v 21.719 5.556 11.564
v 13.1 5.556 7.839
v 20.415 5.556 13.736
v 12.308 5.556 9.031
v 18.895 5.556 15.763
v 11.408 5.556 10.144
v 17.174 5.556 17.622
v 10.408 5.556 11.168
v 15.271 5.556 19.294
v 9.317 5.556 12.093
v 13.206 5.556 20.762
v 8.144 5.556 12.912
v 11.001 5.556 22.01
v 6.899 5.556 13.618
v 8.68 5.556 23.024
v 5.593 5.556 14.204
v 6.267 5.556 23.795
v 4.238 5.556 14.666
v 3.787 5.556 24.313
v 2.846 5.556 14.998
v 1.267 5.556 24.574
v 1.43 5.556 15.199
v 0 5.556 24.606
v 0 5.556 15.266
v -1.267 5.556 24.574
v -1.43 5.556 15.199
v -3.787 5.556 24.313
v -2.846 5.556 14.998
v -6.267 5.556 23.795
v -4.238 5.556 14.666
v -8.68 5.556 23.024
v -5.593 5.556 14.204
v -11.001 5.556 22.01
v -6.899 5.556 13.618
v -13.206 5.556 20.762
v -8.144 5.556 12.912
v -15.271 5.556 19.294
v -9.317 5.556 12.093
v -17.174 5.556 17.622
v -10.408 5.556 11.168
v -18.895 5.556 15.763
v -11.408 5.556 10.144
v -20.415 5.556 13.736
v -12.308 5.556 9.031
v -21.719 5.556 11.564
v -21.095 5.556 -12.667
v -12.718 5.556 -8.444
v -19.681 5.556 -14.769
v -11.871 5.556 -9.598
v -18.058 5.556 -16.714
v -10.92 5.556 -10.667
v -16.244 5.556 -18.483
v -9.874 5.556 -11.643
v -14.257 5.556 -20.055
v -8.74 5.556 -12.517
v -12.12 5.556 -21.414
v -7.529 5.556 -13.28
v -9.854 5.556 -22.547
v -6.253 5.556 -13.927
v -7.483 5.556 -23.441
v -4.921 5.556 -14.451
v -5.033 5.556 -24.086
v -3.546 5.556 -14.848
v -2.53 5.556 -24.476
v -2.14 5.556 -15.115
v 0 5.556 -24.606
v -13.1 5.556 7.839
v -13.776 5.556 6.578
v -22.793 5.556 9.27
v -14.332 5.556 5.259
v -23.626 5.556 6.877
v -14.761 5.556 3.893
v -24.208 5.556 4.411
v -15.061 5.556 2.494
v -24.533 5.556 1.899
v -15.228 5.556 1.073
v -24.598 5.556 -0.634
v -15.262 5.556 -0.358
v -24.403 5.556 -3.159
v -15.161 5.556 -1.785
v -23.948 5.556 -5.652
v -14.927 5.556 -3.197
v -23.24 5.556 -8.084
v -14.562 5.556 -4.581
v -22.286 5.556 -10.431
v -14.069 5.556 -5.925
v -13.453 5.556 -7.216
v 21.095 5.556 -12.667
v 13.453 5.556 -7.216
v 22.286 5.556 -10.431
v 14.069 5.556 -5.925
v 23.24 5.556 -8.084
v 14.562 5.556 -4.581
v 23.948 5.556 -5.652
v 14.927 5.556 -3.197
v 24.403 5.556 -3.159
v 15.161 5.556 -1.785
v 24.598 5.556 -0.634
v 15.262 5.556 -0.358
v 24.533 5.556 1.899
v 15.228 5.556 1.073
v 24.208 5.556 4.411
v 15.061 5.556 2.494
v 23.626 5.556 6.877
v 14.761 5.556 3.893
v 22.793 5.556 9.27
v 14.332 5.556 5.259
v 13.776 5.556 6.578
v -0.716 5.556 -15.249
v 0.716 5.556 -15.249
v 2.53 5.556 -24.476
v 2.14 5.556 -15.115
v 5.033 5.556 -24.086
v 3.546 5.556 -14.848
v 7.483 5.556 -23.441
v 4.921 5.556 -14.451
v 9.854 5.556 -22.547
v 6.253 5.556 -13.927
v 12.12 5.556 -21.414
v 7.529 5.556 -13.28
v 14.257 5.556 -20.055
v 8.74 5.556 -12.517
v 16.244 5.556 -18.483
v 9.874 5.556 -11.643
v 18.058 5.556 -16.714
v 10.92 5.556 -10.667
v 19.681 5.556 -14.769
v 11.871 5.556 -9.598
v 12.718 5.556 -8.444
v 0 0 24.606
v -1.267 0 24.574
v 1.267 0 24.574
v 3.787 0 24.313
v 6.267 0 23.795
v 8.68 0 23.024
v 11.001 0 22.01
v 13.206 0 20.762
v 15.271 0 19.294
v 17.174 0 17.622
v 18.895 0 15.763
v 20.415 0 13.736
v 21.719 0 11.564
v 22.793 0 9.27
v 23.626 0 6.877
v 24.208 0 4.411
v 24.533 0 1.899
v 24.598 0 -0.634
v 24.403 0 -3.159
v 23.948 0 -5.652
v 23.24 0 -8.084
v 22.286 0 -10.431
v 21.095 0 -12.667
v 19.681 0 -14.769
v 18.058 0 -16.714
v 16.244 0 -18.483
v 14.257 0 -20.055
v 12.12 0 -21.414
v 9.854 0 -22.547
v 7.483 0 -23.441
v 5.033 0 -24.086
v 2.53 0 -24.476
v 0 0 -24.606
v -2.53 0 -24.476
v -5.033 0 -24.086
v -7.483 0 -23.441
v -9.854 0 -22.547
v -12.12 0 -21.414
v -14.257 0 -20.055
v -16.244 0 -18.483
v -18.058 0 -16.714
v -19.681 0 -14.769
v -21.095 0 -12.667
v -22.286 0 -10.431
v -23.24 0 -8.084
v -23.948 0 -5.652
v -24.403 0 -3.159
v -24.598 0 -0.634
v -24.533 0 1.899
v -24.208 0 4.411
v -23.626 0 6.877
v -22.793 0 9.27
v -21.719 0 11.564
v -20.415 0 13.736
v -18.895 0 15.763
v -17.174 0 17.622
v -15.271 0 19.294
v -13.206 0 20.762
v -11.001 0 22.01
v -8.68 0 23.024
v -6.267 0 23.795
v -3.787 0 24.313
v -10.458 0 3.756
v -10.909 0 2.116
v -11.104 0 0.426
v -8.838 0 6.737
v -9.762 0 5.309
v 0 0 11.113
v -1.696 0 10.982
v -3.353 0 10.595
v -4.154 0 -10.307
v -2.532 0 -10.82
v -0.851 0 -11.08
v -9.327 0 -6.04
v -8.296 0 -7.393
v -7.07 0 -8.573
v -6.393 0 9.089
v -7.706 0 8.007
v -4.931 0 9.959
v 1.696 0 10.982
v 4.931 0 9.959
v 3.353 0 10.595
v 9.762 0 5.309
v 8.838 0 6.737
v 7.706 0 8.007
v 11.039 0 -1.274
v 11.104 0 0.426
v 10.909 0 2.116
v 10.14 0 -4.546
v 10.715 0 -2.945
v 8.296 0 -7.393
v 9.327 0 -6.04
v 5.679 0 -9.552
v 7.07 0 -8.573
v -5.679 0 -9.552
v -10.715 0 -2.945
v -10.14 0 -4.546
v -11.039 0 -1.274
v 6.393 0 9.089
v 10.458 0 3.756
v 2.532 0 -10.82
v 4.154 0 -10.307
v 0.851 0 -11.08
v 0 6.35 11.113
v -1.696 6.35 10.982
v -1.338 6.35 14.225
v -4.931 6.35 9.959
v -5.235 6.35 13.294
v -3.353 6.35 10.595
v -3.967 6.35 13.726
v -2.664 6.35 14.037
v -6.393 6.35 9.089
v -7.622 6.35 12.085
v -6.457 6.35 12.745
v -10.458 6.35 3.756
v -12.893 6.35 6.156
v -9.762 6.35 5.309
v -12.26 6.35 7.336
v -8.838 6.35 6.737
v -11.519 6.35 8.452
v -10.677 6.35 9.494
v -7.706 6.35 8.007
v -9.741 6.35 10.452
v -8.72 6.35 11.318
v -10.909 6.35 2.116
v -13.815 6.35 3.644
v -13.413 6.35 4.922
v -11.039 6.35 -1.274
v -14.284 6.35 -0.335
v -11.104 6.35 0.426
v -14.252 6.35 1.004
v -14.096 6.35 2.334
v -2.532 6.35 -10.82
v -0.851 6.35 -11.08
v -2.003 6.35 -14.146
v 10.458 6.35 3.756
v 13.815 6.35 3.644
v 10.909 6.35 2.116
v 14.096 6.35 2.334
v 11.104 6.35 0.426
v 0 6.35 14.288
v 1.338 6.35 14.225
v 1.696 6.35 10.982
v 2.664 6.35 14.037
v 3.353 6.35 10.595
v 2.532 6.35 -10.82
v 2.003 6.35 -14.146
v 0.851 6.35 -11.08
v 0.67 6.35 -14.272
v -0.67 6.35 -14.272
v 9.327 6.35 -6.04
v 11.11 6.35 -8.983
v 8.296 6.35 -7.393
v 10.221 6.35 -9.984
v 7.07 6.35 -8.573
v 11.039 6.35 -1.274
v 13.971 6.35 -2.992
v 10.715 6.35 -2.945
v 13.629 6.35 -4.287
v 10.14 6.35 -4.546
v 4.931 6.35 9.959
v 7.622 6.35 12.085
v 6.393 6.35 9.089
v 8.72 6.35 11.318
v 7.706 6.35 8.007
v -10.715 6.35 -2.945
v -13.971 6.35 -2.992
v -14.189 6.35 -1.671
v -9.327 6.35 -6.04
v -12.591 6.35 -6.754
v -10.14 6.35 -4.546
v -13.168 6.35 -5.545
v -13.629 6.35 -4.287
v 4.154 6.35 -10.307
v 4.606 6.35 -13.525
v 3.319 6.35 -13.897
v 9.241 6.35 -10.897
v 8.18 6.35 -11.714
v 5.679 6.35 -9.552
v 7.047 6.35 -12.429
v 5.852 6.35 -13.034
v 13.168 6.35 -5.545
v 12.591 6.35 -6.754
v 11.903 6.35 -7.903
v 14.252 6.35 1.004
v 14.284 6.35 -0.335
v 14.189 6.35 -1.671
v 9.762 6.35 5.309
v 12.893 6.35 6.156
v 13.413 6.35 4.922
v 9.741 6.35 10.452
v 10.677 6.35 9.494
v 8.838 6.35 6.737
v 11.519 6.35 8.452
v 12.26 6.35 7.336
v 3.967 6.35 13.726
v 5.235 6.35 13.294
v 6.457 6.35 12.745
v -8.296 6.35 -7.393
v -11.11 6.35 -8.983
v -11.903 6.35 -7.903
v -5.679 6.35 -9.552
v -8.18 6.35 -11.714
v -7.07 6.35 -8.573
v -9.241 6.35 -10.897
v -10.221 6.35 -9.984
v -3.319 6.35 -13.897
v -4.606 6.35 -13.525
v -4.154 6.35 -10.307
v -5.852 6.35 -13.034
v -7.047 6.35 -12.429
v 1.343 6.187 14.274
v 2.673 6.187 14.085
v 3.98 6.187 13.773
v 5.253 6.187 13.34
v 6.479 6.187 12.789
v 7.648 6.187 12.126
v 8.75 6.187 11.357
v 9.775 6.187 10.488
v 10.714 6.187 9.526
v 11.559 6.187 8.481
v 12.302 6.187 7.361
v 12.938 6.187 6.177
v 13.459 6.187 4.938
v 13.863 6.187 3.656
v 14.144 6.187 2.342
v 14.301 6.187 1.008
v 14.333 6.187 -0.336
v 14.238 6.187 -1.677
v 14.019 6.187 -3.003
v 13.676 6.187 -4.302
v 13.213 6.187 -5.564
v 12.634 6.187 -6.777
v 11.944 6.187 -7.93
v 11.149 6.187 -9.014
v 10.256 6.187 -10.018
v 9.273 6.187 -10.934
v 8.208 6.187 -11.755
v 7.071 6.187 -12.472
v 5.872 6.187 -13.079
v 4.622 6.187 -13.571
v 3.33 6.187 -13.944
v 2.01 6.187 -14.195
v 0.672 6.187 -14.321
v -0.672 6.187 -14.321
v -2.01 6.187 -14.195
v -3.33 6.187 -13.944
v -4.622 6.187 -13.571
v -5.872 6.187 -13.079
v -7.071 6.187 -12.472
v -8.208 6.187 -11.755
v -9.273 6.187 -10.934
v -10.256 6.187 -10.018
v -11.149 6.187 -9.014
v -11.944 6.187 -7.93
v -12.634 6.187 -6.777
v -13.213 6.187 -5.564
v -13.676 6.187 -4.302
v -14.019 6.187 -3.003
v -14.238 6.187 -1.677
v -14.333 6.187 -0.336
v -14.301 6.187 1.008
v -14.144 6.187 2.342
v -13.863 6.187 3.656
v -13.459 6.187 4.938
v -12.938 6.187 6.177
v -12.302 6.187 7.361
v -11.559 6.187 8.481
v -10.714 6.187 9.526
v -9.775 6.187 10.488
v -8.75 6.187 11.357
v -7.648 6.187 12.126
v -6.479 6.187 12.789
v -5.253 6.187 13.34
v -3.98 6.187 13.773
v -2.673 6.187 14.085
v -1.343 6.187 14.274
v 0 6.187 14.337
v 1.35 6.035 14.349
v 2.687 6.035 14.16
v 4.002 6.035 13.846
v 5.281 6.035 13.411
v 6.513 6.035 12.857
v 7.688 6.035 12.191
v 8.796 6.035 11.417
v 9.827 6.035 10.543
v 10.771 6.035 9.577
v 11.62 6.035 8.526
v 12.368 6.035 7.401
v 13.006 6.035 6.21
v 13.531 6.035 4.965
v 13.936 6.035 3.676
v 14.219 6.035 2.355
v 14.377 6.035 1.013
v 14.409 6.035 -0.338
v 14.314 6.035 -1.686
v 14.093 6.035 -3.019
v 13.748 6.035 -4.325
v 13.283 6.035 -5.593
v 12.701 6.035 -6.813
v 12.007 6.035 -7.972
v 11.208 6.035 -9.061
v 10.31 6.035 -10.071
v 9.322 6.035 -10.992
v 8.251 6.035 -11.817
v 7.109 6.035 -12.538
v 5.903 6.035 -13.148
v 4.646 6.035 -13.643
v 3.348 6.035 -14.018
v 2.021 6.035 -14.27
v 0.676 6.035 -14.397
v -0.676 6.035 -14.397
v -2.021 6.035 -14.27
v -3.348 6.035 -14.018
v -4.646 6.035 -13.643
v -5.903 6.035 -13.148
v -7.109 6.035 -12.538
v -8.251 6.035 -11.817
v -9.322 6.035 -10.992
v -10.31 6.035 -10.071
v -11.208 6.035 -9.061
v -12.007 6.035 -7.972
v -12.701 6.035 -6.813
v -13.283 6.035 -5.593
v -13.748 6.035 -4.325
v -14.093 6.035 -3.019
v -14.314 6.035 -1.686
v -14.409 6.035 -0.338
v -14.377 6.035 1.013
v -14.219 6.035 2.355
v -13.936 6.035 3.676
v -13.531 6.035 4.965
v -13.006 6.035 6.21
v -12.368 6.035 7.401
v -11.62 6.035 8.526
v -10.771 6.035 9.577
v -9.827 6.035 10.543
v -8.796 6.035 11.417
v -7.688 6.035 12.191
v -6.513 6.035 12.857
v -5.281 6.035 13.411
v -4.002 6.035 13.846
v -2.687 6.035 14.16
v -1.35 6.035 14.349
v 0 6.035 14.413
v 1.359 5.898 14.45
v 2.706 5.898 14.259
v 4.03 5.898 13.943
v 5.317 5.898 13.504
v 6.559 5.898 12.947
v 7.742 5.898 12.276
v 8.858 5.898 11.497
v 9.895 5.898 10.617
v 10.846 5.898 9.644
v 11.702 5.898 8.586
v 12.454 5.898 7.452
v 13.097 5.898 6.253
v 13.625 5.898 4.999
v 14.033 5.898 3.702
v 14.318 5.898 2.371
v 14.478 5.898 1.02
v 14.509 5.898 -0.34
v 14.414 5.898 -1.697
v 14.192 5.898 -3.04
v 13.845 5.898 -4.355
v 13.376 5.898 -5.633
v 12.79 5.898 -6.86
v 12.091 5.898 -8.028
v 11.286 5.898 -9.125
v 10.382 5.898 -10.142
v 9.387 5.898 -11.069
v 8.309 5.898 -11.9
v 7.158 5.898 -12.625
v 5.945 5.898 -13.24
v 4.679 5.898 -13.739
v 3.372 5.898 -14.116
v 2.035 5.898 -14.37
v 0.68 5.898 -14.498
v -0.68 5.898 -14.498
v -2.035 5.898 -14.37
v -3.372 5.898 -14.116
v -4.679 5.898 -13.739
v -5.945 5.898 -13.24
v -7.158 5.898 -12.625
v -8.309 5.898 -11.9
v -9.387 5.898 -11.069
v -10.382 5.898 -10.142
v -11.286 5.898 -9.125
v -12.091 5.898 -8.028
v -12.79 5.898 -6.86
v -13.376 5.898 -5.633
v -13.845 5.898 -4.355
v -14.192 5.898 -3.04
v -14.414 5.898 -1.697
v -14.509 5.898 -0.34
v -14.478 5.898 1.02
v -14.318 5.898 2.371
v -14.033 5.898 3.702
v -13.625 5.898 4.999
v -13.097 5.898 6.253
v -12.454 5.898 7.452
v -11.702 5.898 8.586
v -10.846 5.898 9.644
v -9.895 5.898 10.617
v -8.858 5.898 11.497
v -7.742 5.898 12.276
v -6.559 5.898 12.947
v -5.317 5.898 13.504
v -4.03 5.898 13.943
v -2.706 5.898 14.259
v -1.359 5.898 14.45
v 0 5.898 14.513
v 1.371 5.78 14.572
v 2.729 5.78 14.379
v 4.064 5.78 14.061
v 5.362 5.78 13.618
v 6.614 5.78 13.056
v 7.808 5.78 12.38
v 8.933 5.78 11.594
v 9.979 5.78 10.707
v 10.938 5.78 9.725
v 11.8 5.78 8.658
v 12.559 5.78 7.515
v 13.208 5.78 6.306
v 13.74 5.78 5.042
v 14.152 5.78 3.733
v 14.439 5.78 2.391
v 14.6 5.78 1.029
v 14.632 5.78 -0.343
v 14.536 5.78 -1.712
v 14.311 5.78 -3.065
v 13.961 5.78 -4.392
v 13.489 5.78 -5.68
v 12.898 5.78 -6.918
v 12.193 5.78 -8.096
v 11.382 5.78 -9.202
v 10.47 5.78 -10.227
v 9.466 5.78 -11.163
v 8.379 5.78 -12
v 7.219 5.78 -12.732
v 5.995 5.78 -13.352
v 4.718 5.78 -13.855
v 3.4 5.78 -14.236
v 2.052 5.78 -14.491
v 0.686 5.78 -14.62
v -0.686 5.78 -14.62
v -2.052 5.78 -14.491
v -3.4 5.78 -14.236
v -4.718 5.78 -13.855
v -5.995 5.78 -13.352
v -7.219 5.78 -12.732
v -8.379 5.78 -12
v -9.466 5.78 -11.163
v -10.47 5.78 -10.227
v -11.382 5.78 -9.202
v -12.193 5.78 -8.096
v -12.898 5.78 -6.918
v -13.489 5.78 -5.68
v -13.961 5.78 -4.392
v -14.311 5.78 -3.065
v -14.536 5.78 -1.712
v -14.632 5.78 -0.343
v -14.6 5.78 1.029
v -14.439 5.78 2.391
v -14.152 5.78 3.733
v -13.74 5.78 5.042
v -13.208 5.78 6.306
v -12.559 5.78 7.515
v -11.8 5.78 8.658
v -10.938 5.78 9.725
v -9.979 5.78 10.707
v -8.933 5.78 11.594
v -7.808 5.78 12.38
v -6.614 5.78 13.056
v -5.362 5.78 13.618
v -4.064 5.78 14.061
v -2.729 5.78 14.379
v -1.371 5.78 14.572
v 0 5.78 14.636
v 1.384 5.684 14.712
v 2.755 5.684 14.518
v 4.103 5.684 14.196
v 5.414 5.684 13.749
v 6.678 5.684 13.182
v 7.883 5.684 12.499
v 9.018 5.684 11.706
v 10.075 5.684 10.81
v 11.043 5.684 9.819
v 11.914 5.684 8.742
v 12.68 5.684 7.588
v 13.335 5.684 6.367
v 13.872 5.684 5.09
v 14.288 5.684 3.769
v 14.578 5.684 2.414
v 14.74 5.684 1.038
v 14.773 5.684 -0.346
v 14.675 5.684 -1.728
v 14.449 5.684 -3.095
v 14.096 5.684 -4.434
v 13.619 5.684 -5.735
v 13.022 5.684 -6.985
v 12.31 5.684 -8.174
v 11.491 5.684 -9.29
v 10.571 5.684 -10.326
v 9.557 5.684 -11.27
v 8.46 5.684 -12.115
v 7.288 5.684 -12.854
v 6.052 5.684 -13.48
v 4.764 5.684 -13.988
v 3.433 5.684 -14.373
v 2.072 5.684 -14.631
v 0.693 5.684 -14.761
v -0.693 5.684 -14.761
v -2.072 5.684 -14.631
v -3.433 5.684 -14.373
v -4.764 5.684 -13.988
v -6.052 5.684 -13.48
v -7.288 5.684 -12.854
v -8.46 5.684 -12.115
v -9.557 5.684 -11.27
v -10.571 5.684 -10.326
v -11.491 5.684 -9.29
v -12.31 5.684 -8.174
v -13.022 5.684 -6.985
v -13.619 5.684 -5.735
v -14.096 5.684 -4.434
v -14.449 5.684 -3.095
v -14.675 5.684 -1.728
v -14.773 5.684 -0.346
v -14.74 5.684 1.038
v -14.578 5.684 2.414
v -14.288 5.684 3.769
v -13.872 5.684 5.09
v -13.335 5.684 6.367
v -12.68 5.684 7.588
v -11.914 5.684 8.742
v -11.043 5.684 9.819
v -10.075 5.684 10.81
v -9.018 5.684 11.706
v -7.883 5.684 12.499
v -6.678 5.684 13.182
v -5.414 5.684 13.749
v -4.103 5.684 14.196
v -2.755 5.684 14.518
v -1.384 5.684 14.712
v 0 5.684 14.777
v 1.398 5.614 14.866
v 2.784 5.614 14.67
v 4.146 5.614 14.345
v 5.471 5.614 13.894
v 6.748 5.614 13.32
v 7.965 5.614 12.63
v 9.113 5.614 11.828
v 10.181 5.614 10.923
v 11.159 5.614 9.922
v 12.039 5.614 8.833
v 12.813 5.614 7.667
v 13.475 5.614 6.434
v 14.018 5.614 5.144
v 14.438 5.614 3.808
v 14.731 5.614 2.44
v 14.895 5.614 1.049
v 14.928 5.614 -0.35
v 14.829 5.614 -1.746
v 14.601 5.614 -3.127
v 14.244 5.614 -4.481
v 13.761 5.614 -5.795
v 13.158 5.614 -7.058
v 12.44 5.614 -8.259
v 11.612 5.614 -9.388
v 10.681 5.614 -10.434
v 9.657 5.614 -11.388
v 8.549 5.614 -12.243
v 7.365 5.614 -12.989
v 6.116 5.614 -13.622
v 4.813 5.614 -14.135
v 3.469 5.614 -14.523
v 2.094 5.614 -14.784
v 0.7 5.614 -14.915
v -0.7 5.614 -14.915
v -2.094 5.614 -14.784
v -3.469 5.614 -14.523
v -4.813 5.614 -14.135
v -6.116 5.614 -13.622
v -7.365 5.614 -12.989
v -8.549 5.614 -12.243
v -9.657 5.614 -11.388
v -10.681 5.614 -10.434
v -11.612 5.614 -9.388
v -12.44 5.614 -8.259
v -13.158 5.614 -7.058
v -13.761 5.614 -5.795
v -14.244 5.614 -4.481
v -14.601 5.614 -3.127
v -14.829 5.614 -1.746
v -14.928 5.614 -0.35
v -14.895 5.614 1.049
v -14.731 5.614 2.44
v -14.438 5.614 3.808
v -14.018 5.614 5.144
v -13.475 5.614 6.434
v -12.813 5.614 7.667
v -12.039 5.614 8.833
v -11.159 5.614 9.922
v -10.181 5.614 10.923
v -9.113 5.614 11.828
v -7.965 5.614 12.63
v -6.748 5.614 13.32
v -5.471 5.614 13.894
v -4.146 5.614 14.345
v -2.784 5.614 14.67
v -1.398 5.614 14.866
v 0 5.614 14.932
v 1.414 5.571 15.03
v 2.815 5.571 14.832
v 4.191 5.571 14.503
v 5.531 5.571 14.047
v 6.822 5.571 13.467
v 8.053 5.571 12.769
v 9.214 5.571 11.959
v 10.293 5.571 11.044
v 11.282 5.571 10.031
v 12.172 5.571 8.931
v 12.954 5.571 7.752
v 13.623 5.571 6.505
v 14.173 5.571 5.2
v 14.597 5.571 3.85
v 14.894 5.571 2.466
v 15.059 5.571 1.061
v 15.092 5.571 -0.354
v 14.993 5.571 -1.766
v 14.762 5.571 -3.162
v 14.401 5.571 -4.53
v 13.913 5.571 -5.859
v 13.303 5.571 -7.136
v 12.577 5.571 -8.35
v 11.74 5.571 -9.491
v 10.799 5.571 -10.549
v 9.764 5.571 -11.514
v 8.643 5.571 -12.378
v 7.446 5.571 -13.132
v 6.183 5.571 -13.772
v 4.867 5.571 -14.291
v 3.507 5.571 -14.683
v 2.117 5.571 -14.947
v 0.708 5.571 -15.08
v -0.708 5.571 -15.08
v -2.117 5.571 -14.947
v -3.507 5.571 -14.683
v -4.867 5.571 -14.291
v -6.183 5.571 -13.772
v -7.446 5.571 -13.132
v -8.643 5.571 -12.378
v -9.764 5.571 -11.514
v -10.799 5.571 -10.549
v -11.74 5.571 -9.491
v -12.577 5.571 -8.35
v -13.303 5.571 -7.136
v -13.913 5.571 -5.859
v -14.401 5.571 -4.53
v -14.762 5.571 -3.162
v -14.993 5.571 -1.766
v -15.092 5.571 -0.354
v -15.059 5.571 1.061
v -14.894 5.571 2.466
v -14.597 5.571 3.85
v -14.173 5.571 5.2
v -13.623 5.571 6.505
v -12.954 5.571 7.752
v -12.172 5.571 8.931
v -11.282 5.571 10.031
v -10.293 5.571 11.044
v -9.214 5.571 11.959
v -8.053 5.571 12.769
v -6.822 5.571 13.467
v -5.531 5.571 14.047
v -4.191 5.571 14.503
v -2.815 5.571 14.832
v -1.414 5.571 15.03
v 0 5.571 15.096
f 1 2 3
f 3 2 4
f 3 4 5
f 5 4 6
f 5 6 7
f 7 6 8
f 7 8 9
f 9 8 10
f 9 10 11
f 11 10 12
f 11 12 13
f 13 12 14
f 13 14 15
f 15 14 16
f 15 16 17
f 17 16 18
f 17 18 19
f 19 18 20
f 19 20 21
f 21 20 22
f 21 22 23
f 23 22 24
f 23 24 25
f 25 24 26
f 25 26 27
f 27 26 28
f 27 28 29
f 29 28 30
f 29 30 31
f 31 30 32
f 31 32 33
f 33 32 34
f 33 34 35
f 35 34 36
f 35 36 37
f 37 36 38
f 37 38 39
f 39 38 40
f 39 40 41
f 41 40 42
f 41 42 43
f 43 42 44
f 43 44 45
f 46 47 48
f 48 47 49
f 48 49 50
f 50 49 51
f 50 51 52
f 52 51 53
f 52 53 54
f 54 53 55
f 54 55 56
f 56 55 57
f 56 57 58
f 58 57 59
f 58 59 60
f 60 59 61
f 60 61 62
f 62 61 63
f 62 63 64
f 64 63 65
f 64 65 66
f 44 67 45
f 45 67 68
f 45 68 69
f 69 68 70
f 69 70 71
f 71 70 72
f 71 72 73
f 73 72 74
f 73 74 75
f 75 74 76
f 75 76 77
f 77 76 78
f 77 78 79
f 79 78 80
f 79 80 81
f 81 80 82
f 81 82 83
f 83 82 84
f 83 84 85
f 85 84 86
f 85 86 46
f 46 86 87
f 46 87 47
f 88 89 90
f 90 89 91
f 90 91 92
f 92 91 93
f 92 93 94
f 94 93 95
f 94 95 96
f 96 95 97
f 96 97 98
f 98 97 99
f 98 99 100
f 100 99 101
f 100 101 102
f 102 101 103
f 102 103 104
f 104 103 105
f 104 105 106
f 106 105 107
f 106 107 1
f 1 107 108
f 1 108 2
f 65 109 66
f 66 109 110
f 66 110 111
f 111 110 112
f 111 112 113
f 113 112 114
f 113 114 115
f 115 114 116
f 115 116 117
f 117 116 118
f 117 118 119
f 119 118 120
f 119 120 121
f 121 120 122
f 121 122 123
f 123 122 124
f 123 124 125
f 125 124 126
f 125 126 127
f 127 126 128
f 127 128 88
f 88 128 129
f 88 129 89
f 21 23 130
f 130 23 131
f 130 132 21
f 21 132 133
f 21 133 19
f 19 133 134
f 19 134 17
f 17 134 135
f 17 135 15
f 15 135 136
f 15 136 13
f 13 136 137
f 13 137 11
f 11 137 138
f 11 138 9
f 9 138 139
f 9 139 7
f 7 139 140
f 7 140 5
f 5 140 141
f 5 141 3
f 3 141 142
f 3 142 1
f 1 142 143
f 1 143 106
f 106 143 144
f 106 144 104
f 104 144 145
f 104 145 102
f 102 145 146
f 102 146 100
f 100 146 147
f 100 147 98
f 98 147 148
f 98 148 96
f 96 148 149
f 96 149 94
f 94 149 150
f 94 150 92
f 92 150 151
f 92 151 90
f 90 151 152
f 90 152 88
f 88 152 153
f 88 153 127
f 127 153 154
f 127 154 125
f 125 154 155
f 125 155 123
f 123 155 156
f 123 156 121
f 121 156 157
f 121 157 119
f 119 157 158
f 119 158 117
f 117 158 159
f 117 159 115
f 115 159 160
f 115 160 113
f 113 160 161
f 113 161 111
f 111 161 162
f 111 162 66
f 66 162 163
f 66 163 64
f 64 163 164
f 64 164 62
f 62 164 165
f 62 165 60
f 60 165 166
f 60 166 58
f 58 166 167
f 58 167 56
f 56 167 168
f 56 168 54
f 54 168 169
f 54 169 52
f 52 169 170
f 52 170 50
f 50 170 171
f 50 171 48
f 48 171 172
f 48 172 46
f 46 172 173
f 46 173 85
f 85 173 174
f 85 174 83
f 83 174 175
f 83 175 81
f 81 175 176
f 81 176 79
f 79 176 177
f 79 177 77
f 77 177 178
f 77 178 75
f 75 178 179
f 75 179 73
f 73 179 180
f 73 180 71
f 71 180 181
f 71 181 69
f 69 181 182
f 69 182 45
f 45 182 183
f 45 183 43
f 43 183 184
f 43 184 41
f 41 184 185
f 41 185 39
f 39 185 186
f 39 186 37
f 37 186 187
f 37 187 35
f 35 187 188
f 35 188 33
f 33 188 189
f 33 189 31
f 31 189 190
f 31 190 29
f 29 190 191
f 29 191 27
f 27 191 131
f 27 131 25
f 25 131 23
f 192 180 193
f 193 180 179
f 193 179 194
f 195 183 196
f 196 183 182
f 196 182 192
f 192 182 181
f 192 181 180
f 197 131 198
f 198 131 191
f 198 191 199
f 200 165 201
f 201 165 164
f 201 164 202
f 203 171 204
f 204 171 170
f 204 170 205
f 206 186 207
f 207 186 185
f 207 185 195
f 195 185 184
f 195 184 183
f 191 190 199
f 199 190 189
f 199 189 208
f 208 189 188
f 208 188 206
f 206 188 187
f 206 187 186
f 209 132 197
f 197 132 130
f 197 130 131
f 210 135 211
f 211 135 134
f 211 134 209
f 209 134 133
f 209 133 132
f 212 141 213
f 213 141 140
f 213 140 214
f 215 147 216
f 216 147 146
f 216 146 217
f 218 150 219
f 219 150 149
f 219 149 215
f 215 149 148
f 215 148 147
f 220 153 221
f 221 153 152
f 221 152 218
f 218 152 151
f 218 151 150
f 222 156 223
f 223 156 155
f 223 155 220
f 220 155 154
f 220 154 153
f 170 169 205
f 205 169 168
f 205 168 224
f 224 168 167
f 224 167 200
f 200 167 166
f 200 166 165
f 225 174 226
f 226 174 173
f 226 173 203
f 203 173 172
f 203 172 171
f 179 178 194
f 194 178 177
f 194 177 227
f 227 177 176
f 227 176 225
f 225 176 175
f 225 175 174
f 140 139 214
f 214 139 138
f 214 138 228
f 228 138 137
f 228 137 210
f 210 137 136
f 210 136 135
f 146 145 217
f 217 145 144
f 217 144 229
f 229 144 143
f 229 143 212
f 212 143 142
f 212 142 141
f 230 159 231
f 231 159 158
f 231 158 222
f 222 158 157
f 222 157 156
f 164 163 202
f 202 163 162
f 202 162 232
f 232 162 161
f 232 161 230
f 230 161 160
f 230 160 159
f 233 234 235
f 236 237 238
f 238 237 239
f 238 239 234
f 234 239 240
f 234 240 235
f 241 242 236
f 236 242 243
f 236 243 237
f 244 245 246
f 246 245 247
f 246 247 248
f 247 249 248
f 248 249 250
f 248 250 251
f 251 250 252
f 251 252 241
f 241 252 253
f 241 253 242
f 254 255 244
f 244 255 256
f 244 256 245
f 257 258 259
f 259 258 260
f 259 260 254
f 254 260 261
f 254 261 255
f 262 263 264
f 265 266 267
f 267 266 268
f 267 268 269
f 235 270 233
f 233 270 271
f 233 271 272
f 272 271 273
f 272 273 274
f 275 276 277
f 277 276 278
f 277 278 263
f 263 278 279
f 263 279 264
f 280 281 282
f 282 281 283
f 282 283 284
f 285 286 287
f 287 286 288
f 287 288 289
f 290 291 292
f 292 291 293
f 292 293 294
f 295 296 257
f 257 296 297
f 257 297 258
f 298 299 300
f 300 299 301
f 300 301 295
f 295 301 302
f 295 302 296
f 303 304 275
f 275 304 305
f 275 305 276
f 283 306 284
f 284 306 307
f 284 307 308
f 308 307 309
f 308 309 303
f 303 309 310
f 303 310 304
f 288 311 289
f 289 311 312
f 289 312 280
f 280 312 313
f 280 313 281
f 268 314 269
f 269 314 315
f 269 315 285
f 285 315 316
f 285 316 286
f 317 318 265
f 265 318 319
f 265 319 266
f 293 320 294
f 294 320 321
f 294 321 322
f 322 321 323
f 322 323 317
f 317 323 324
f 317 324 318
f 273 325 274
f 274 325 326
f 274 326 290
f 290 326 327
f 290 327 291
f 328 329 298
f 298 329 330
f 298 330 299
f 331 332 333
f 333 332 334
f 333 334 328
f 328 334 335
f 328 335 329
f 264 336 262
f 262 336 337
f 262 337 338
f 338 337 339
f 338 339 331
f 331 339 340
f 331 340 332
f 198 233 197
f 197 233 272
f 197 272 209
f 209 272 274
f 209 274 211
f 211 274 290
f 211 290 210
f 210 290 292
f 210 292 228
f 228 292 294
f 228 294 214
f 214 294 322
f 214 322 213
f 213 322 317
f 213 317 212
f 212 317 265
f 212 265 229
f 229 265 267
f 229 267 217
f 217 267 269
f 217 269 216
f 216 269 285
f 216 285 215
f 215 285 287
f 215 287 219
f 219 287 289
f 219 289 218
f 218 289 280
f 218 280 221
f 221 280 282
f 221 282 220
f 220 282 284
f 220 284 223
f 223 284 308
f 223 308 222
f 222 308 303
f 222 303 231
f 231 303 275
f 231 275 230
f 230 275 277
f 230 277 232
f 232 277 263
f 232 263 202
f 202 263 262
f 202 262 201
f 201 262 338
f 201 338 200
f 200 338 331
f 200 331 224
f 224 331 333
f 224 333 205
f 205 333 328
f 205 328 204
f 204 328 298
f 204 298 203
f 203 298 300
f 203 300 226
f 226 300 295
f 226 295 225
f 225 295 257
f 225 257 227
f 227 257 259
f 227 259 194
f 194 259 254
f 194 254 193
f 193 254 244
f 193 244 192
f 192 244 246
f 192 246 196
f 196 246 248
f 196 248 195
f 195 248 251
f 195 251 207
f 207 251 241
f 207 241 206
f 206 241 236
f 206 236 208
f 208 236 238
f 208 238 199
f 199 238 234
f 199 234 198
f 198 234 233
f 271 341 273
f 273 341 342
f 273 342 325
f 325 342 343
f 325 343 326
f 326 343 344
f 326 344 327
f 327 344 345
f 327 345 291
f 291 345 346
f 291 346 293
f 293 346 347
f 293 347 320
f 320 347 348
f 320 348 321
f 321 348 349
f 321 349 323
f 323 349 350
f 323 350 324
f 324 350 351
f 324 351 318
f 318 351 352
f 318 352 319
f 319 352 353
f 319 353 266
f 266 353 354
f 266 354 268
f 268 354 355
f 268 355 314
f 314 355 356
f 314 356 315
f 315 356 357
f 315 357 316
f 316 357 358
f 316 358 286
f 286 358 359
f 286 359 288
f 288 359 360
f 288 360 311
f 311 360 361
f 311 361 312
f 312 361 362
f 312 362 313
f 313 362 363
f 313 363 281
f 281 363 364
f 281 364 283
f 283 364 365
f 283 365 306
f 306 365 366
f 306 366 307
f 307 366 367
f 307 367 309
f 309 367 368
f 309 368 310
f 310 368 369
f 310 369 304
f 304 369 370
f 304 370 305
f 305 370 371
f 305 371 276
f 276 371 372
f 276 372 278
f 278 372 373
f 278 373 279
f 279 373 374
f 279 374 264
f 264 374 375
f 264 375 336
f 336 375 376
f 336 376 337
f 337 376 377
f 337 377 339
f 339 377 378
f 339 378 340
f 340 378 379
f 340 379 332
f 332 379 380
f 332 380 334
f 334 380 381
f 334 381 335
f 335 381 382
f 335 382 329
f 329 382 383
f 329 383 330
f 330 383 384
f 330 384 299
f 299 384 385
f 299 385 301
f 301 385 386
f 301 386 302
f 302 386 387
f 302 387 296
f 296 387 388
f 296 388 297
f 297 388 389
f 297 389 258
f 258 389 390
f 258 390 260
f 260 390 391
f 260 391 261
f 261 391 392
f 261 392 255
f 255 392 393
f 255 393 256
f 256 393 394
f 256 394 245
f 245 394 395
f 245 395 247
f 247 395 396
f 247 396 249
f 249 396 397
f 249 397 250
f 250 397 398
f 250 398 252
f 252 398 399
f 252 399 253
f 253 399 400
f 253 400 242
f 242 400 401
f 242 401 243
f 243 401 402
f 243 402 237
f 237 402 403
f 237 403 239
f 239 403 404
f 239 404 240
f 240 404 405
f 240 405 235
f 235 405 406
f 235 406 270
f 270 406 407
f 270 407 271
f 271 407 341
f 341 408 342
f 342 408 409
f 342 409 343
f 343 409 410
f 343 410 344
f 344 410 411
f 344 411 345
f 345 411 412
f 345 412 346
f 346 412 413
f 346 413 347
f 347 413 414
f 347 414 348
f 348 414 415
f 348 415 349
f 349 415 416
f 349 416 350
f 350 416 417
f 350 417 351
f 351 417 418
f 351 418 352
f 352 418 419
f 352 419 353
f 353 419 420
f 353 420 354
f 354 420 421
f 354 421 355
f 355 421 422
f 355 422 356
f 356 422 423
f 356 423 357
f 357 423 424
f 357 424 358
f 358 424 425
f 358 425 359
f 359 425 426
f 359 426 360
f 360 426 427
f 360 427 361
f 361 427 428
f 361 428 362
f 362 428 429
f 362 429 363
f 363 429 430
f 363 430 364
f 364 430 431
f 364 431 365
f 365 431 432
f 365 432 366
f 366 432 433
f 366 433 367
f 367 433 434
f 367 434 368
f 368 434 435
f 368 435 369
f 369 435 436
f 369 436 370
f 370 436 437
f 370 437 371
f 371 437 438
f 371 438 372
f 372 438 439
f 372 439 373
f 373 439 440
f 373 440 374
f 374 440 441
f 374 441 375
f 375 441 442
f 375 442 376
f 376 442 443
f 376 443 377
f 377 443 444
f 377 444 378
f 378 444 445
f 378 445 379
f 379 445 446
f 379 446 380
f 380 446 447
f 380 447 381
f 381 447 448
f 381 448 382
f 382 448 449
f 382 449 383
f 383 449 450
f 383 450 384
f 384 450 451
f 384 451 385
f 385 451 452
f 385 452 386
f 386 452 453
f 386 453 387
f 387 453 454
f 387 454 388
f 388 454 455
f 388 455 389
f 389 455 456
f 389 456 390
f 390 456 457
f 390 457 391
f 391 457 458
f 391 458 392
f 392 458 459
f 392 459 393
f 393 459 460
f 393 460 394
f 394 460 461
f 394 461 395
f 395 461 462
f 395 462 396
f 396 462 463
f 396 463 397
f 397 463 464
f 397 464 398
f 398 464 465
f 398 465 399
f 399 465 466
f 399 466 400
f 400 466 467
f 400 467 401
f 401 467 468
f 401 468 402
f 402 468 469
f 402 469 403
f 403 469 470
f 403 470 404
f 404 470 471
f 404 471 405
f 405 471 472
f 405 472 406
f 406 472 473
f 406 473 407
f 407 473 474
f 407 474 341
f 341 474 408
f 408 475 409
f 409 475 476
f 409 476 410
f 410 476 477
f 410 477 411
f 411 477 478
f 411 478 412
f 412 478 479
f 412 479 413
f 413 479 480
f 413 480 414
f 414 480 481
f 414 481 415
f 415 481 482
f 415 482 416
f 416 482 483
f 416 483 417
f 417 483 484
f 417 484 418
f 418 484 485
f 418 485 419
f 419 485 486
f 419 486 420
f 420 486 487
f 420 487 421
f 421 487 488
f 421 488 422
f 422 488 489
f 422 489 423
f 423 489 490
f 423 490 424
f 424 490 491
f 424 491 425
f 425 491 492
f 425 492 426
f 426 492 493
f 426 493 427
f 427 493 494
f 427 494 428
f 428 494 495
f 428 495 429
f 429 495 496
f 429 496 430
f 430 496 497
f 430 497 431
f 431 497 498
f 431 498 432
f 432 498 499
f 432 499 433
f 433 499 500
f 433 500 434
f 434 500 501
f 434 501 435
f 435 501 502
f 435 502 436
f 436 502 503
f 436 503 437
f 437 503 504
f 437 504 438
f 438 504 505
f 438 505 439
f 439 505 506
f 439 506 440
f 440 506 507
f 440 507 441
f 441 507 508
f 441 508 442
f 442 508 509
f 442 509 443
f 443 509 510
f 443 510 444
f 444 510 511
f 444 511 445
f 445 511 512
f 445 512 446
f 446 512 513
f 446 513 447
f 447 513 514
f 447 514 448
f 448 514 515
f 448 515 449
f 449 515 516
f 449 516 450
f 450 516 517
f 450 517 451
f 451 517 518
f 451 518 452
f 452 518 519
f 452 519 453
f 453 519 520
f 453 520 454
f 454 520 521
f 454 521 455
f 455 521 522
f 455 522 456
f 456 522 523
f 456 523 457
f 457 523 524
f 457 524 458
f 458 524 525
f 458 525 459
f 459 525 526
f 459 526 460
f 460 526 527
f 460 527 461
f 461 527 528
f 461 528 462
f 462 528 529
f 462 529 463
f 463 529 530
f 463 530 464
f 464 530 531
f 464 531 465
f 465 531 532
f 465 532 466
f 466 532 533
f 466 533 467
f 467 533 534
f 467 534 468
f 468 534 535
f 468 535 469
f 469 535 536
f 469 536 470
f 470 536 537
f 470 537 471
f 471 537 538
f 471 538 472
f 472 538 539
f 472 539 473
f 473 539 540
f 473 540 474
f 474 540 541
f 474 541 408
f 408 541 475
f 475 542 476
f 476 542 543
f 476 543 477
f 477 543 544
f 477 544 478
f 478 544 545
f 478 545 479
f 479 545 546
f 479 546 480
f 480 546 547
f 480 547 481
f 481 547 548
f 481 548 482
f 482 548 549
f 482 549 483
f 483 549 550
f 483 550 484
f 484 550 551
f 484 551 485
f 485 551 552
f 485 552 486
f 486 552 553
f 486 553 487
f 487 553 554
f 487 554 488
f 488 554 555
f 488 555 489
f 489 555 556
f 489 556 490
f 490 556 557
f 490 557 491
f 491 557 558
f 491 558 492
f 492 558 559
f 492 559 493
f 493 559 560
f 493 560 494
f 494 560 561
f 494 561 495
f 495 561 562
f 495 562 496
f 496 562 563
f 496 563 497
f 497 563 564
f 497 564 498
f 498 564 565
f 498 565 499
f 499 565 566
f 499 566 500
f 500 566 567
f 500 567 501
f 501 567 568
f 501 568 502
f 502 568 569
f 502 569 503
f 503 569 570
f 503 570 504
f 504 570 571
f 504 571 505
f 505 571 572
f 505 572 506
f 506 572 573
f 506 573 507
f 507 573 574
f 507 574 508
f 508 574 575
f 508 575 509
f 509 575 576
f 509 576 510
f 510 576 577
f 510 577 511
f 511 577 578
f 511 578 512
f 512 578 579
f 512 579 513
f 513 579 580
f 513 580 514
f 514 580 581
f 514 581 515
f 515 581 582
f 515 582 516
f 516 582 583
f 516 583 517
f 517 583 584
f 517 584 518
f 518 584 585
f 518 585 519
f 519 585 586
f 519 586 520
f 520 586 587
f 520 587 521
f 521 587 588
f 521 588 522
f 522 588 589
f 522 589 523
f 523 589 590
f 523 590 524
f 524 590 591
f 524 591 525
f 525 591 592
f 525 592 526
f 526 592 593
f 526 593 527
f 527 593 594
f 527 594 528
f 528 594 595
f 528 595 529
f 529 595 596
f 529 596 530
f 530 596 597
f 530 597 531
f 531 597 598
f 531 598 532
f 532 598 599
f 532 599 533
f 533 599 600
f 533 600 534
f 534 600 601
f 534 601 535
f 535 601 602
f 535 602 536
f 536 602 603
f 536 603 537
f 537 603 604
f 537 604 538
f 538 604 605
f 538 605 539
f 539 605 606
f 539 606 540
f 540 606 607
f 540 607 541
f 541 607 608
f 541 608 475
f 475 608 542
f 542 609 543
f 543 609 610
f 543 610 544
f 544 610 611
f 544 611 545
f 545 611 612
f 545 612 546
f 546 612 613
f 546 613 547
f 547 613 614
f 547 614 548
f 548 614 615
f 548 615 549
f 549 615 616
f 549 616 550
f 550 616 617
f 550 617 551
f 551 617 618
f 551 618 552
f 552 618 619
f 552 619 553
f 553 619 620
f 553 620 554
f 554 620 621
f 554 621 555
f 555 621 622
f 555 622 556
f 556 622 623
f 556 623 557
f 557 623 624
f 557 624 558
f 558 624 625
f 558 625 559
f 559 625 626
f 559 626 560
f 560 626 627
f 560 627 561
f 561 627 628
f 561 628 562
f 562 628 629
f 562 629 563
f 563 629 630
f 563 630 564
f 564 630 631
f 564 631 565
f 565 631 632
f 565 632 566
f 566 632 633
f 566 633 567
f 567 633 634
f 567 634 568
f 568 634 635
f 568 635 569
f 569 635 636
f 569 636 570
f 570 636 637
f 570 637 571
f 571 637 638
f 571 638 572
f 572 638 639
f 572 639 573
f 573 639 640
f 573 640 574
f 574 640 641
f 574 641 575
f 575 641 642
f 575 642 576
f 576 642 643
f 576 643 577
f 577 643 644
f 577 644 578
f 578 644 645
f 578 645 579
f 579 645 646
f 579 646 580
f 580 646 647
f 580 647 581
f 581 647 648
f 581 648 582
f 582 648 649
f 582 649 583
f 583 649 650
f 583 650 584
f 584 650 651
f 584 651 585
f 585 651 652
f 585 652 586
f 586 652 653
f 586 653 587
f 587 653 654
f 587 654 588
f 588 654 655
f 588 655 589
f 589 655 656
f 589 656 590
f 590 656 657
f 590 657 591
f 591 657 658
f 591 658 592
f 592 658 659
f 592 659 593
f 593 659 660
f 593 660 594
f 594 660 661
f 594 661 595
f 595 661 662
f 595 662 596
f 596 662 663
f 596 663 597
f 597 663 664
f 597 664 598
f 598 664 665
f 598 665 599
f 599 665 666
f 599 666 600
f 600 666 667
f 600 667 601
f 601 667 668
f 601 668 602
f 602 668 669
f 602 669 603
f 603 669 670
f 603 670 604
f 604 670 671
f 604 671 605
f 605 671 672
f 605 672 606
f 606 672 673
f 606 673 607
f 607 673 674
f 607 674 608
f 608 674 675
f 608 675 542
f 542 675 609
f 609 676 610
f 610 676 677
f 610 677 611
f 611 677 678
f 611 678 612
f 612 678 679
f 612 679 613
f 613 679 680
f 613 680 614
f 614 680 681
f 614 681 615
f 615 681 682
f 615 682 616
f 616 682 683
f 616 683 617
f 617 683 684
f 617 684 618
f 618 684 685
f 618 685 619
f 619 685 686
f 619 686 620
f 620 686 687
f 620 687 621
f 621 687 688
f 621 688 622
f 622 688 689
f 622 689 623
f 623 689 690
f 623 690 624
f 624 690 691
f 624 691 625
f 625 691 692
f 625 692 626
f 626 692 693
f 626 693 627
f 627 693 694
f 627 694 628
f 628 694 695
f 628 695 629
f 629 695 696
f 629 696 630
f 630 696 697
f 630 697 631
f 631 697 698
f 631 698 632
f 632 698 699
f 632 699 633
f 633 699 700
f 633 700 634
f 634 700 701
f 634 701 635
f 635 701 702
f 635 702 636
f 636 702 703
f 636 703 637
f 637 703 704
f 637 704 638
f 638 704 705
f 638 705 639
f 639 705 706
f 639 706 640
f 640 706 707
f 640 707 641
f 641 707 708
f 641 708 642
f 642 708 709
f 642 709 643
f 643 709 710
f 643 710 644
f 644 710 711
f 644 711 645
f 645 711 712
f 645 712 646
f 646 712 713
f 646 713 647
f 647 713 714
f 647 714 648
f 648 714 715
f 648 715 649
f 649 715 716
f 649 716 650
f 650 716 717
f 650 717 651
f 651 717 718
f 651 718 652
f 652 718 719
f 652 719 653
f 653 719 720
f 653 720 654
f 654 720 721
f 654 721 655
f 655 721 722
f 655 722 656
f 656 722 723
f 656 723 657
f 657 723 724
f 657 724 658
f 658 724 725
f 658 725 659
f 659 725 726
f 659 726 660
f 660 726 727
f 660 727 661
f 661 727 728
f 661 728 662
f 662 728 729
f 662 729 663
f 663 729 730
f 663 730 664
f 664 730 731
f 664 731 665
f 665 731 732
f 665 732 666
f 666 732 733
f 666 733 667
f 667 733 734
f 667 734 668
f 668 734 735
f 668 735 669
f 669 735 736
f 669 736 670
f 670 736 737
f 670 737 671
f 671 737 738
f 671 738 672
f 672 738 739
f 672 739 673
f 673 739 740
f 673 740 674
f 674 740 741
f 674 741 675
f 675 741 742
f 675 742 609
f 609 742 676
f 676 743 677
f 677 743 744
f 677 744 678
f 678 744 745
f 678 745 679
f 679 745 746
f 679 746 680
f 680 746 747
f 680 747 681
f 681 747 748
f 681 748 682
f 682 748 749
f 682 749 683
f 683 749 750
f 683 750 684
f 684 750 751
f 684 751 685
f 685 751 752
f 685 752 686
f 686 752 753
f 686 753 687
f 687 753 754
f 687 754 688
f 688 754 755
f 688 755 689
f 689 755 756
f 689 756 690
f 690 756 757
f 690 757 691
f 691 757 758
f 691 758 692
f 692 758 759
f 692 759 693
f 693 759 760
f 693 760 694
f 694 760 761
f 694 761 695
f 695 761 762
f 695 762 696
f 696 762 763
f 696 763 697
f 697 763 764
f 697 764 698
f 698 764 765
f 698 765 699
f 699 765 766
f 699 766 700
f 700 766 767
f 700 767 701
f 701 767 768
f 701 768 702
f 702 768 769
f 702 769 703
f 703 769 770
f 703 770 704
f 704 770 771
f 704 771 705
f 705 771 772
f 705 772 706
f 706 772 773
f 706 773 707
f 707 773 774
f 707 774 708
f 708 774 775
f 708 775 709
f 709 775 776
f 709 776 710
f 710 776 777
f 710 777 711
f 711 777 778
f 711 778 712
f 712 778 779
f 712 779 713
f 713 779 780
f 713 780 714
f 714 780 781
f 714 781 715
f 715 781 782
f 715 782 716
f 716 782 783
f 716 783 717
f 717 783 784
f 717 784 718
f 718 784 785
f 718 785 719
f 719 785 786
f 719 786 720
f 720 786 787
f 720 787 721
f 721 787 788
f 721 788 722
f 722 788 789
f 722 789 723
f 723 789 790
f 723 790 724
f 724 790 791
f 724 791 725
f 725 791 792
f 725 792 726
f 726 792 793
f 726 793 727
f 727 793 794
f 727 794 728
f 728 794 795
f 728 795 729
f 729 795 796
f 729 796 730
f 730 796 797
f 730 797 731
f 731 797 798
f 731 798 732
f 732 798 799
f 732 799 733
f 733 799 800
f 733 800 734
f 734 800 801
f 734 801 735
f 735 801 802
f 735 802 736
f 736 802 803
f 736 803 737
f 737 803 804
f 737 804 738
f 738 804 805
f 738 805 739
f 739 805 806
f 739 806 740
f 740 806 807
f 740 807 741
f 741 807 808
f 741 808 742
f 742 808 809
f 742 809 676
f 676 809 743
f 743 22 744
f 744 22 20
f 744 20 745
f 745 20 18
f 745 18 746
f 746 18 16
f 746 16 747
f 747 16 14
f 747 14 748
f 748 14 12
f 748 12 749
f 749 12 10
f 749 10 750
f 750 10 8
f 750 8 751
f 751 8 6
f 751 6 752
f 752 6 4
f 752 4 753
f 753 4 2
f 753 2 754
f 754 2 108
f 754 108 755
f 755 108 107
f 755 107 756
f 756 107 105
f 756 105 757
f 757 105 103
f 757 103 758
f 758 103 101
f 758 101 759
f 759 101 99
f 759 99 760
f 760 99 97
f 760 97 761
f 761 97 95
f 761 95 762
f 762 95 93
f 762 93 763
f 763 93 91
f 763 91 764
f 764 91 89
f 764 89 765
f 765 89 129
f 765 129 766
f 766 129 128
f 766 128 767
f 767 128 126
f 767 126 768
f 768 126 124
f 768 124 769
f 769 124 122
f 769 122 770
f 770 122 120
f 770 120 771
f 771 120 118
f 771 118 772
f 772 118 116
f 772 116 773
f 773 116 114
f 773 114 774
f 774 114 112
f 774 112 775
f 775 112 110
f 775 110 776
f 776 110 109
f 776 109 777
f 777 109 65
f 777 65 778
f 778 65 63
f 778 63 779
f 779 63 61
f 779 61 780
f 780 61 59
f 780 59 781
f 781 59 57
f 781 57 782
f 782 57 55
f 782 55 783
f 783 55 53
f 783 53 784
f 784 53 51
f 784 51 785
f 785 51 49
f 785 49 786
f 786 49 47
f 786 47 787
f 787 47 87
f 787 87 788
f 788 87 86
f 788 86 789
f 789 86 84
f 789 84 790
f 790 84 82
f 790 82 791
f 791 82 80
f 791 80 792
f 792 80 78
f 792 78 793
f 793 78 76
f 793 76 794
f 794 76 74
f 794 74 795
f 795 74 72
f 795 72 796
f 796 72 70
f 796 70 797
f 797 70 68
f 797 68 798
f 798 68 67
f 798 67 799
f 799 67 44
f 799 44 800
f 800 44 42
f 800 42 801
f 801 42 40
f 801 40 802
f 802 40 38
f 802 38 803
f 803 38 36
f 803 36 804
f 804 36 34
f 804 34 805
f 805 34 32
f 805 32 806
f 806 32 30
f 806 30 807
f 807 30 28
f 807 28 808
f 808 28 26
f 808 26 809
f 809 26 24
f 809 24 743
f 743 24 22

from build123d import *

# Parameters (mm, degrees)
SKETCH1_R           = 24.60625
BOSS_EXTRUDE1_DEPTH = 5.55625
SKETCH2_R           = 14.2875
BOSS_EXTRUDE2_DEPTH = 0.79375
SKETCH3_R           = 11.1125
CUT_EXTRUDE1_DEPTH  = 36.373119429
FILLET1_R           = 1


with BuildPart() as part:
    # Sketch1 → Boss-Extrude1 (new body)
    with BuildSketch(Plane(origin=(0, 0, 0), x_dir=(1, 0, 0), z_dir=(0, 1, 0))):
        with Locations(Location((0, 0, 0), (0, 0, 270))):
            Circle(SKETCH1_R)
    extrude(amount=BOSS_EXTRUDE1_DEPTH)

    # Sketch2 → Boss-Extrude2 (add)
    with BuildSketch(Plane(origin=(0, 5.55625, 0), x_dir=(1, 0, 0), z_dir=(0, 1, 0))):
        with Locations(Location((0, 0, 0), (0, 0, 270))):
            Circle(SKETCH2_R)
    extrude(amount=BOSS_EXTRUDE2_DEPTH)

    # Sketch3 → Cut-Extrude1 (cut, through all)
    with BuildSketch(Plane(origin=(0, 6.35, 0), x_dir=(1, 0, 0), z_dir=(0, 1, 0))):
        with Locations(Location((0, 0, 0), (0, 0, 270))):
            Circle(SKETCH3_R)
    extrude(amount=-CUT_EXTRUDE1_DEPTH, mode=Mode.SUBTRACT)

    # Fillet1
    # the kernel refuses this fillet: 1 mm, written as the material it adds along each edge
    with BuildSketch(Plane(origin=(0, 5.55625, 0), x_dir=(0, 0, 1), z_dir=(-1, 0, 0))) as fillet1_piece_1:
        with BuildLine():
            CenterArc((15.265999329, 1), FILLET1_R, 191.902682649, 78.097317351)
            Line((14.2875, 0.79375), (14.267930013, 0.789625))
            ThreePointArc((14.267930013, 0.789625), (14.2675, 0.396875), (14.2675, 0))
            Line((14.2675, 0), (14.2875, -0.02))
            Line((14.2875, -0.02), (15.265999329, -0.02))
            Line((15.265999329, -0.02), (15.265999329, 0))
        make_face()
    revolve(axis=Axis((0, 5.55625, 0), (0, 1, 0)))


solid = part.part
